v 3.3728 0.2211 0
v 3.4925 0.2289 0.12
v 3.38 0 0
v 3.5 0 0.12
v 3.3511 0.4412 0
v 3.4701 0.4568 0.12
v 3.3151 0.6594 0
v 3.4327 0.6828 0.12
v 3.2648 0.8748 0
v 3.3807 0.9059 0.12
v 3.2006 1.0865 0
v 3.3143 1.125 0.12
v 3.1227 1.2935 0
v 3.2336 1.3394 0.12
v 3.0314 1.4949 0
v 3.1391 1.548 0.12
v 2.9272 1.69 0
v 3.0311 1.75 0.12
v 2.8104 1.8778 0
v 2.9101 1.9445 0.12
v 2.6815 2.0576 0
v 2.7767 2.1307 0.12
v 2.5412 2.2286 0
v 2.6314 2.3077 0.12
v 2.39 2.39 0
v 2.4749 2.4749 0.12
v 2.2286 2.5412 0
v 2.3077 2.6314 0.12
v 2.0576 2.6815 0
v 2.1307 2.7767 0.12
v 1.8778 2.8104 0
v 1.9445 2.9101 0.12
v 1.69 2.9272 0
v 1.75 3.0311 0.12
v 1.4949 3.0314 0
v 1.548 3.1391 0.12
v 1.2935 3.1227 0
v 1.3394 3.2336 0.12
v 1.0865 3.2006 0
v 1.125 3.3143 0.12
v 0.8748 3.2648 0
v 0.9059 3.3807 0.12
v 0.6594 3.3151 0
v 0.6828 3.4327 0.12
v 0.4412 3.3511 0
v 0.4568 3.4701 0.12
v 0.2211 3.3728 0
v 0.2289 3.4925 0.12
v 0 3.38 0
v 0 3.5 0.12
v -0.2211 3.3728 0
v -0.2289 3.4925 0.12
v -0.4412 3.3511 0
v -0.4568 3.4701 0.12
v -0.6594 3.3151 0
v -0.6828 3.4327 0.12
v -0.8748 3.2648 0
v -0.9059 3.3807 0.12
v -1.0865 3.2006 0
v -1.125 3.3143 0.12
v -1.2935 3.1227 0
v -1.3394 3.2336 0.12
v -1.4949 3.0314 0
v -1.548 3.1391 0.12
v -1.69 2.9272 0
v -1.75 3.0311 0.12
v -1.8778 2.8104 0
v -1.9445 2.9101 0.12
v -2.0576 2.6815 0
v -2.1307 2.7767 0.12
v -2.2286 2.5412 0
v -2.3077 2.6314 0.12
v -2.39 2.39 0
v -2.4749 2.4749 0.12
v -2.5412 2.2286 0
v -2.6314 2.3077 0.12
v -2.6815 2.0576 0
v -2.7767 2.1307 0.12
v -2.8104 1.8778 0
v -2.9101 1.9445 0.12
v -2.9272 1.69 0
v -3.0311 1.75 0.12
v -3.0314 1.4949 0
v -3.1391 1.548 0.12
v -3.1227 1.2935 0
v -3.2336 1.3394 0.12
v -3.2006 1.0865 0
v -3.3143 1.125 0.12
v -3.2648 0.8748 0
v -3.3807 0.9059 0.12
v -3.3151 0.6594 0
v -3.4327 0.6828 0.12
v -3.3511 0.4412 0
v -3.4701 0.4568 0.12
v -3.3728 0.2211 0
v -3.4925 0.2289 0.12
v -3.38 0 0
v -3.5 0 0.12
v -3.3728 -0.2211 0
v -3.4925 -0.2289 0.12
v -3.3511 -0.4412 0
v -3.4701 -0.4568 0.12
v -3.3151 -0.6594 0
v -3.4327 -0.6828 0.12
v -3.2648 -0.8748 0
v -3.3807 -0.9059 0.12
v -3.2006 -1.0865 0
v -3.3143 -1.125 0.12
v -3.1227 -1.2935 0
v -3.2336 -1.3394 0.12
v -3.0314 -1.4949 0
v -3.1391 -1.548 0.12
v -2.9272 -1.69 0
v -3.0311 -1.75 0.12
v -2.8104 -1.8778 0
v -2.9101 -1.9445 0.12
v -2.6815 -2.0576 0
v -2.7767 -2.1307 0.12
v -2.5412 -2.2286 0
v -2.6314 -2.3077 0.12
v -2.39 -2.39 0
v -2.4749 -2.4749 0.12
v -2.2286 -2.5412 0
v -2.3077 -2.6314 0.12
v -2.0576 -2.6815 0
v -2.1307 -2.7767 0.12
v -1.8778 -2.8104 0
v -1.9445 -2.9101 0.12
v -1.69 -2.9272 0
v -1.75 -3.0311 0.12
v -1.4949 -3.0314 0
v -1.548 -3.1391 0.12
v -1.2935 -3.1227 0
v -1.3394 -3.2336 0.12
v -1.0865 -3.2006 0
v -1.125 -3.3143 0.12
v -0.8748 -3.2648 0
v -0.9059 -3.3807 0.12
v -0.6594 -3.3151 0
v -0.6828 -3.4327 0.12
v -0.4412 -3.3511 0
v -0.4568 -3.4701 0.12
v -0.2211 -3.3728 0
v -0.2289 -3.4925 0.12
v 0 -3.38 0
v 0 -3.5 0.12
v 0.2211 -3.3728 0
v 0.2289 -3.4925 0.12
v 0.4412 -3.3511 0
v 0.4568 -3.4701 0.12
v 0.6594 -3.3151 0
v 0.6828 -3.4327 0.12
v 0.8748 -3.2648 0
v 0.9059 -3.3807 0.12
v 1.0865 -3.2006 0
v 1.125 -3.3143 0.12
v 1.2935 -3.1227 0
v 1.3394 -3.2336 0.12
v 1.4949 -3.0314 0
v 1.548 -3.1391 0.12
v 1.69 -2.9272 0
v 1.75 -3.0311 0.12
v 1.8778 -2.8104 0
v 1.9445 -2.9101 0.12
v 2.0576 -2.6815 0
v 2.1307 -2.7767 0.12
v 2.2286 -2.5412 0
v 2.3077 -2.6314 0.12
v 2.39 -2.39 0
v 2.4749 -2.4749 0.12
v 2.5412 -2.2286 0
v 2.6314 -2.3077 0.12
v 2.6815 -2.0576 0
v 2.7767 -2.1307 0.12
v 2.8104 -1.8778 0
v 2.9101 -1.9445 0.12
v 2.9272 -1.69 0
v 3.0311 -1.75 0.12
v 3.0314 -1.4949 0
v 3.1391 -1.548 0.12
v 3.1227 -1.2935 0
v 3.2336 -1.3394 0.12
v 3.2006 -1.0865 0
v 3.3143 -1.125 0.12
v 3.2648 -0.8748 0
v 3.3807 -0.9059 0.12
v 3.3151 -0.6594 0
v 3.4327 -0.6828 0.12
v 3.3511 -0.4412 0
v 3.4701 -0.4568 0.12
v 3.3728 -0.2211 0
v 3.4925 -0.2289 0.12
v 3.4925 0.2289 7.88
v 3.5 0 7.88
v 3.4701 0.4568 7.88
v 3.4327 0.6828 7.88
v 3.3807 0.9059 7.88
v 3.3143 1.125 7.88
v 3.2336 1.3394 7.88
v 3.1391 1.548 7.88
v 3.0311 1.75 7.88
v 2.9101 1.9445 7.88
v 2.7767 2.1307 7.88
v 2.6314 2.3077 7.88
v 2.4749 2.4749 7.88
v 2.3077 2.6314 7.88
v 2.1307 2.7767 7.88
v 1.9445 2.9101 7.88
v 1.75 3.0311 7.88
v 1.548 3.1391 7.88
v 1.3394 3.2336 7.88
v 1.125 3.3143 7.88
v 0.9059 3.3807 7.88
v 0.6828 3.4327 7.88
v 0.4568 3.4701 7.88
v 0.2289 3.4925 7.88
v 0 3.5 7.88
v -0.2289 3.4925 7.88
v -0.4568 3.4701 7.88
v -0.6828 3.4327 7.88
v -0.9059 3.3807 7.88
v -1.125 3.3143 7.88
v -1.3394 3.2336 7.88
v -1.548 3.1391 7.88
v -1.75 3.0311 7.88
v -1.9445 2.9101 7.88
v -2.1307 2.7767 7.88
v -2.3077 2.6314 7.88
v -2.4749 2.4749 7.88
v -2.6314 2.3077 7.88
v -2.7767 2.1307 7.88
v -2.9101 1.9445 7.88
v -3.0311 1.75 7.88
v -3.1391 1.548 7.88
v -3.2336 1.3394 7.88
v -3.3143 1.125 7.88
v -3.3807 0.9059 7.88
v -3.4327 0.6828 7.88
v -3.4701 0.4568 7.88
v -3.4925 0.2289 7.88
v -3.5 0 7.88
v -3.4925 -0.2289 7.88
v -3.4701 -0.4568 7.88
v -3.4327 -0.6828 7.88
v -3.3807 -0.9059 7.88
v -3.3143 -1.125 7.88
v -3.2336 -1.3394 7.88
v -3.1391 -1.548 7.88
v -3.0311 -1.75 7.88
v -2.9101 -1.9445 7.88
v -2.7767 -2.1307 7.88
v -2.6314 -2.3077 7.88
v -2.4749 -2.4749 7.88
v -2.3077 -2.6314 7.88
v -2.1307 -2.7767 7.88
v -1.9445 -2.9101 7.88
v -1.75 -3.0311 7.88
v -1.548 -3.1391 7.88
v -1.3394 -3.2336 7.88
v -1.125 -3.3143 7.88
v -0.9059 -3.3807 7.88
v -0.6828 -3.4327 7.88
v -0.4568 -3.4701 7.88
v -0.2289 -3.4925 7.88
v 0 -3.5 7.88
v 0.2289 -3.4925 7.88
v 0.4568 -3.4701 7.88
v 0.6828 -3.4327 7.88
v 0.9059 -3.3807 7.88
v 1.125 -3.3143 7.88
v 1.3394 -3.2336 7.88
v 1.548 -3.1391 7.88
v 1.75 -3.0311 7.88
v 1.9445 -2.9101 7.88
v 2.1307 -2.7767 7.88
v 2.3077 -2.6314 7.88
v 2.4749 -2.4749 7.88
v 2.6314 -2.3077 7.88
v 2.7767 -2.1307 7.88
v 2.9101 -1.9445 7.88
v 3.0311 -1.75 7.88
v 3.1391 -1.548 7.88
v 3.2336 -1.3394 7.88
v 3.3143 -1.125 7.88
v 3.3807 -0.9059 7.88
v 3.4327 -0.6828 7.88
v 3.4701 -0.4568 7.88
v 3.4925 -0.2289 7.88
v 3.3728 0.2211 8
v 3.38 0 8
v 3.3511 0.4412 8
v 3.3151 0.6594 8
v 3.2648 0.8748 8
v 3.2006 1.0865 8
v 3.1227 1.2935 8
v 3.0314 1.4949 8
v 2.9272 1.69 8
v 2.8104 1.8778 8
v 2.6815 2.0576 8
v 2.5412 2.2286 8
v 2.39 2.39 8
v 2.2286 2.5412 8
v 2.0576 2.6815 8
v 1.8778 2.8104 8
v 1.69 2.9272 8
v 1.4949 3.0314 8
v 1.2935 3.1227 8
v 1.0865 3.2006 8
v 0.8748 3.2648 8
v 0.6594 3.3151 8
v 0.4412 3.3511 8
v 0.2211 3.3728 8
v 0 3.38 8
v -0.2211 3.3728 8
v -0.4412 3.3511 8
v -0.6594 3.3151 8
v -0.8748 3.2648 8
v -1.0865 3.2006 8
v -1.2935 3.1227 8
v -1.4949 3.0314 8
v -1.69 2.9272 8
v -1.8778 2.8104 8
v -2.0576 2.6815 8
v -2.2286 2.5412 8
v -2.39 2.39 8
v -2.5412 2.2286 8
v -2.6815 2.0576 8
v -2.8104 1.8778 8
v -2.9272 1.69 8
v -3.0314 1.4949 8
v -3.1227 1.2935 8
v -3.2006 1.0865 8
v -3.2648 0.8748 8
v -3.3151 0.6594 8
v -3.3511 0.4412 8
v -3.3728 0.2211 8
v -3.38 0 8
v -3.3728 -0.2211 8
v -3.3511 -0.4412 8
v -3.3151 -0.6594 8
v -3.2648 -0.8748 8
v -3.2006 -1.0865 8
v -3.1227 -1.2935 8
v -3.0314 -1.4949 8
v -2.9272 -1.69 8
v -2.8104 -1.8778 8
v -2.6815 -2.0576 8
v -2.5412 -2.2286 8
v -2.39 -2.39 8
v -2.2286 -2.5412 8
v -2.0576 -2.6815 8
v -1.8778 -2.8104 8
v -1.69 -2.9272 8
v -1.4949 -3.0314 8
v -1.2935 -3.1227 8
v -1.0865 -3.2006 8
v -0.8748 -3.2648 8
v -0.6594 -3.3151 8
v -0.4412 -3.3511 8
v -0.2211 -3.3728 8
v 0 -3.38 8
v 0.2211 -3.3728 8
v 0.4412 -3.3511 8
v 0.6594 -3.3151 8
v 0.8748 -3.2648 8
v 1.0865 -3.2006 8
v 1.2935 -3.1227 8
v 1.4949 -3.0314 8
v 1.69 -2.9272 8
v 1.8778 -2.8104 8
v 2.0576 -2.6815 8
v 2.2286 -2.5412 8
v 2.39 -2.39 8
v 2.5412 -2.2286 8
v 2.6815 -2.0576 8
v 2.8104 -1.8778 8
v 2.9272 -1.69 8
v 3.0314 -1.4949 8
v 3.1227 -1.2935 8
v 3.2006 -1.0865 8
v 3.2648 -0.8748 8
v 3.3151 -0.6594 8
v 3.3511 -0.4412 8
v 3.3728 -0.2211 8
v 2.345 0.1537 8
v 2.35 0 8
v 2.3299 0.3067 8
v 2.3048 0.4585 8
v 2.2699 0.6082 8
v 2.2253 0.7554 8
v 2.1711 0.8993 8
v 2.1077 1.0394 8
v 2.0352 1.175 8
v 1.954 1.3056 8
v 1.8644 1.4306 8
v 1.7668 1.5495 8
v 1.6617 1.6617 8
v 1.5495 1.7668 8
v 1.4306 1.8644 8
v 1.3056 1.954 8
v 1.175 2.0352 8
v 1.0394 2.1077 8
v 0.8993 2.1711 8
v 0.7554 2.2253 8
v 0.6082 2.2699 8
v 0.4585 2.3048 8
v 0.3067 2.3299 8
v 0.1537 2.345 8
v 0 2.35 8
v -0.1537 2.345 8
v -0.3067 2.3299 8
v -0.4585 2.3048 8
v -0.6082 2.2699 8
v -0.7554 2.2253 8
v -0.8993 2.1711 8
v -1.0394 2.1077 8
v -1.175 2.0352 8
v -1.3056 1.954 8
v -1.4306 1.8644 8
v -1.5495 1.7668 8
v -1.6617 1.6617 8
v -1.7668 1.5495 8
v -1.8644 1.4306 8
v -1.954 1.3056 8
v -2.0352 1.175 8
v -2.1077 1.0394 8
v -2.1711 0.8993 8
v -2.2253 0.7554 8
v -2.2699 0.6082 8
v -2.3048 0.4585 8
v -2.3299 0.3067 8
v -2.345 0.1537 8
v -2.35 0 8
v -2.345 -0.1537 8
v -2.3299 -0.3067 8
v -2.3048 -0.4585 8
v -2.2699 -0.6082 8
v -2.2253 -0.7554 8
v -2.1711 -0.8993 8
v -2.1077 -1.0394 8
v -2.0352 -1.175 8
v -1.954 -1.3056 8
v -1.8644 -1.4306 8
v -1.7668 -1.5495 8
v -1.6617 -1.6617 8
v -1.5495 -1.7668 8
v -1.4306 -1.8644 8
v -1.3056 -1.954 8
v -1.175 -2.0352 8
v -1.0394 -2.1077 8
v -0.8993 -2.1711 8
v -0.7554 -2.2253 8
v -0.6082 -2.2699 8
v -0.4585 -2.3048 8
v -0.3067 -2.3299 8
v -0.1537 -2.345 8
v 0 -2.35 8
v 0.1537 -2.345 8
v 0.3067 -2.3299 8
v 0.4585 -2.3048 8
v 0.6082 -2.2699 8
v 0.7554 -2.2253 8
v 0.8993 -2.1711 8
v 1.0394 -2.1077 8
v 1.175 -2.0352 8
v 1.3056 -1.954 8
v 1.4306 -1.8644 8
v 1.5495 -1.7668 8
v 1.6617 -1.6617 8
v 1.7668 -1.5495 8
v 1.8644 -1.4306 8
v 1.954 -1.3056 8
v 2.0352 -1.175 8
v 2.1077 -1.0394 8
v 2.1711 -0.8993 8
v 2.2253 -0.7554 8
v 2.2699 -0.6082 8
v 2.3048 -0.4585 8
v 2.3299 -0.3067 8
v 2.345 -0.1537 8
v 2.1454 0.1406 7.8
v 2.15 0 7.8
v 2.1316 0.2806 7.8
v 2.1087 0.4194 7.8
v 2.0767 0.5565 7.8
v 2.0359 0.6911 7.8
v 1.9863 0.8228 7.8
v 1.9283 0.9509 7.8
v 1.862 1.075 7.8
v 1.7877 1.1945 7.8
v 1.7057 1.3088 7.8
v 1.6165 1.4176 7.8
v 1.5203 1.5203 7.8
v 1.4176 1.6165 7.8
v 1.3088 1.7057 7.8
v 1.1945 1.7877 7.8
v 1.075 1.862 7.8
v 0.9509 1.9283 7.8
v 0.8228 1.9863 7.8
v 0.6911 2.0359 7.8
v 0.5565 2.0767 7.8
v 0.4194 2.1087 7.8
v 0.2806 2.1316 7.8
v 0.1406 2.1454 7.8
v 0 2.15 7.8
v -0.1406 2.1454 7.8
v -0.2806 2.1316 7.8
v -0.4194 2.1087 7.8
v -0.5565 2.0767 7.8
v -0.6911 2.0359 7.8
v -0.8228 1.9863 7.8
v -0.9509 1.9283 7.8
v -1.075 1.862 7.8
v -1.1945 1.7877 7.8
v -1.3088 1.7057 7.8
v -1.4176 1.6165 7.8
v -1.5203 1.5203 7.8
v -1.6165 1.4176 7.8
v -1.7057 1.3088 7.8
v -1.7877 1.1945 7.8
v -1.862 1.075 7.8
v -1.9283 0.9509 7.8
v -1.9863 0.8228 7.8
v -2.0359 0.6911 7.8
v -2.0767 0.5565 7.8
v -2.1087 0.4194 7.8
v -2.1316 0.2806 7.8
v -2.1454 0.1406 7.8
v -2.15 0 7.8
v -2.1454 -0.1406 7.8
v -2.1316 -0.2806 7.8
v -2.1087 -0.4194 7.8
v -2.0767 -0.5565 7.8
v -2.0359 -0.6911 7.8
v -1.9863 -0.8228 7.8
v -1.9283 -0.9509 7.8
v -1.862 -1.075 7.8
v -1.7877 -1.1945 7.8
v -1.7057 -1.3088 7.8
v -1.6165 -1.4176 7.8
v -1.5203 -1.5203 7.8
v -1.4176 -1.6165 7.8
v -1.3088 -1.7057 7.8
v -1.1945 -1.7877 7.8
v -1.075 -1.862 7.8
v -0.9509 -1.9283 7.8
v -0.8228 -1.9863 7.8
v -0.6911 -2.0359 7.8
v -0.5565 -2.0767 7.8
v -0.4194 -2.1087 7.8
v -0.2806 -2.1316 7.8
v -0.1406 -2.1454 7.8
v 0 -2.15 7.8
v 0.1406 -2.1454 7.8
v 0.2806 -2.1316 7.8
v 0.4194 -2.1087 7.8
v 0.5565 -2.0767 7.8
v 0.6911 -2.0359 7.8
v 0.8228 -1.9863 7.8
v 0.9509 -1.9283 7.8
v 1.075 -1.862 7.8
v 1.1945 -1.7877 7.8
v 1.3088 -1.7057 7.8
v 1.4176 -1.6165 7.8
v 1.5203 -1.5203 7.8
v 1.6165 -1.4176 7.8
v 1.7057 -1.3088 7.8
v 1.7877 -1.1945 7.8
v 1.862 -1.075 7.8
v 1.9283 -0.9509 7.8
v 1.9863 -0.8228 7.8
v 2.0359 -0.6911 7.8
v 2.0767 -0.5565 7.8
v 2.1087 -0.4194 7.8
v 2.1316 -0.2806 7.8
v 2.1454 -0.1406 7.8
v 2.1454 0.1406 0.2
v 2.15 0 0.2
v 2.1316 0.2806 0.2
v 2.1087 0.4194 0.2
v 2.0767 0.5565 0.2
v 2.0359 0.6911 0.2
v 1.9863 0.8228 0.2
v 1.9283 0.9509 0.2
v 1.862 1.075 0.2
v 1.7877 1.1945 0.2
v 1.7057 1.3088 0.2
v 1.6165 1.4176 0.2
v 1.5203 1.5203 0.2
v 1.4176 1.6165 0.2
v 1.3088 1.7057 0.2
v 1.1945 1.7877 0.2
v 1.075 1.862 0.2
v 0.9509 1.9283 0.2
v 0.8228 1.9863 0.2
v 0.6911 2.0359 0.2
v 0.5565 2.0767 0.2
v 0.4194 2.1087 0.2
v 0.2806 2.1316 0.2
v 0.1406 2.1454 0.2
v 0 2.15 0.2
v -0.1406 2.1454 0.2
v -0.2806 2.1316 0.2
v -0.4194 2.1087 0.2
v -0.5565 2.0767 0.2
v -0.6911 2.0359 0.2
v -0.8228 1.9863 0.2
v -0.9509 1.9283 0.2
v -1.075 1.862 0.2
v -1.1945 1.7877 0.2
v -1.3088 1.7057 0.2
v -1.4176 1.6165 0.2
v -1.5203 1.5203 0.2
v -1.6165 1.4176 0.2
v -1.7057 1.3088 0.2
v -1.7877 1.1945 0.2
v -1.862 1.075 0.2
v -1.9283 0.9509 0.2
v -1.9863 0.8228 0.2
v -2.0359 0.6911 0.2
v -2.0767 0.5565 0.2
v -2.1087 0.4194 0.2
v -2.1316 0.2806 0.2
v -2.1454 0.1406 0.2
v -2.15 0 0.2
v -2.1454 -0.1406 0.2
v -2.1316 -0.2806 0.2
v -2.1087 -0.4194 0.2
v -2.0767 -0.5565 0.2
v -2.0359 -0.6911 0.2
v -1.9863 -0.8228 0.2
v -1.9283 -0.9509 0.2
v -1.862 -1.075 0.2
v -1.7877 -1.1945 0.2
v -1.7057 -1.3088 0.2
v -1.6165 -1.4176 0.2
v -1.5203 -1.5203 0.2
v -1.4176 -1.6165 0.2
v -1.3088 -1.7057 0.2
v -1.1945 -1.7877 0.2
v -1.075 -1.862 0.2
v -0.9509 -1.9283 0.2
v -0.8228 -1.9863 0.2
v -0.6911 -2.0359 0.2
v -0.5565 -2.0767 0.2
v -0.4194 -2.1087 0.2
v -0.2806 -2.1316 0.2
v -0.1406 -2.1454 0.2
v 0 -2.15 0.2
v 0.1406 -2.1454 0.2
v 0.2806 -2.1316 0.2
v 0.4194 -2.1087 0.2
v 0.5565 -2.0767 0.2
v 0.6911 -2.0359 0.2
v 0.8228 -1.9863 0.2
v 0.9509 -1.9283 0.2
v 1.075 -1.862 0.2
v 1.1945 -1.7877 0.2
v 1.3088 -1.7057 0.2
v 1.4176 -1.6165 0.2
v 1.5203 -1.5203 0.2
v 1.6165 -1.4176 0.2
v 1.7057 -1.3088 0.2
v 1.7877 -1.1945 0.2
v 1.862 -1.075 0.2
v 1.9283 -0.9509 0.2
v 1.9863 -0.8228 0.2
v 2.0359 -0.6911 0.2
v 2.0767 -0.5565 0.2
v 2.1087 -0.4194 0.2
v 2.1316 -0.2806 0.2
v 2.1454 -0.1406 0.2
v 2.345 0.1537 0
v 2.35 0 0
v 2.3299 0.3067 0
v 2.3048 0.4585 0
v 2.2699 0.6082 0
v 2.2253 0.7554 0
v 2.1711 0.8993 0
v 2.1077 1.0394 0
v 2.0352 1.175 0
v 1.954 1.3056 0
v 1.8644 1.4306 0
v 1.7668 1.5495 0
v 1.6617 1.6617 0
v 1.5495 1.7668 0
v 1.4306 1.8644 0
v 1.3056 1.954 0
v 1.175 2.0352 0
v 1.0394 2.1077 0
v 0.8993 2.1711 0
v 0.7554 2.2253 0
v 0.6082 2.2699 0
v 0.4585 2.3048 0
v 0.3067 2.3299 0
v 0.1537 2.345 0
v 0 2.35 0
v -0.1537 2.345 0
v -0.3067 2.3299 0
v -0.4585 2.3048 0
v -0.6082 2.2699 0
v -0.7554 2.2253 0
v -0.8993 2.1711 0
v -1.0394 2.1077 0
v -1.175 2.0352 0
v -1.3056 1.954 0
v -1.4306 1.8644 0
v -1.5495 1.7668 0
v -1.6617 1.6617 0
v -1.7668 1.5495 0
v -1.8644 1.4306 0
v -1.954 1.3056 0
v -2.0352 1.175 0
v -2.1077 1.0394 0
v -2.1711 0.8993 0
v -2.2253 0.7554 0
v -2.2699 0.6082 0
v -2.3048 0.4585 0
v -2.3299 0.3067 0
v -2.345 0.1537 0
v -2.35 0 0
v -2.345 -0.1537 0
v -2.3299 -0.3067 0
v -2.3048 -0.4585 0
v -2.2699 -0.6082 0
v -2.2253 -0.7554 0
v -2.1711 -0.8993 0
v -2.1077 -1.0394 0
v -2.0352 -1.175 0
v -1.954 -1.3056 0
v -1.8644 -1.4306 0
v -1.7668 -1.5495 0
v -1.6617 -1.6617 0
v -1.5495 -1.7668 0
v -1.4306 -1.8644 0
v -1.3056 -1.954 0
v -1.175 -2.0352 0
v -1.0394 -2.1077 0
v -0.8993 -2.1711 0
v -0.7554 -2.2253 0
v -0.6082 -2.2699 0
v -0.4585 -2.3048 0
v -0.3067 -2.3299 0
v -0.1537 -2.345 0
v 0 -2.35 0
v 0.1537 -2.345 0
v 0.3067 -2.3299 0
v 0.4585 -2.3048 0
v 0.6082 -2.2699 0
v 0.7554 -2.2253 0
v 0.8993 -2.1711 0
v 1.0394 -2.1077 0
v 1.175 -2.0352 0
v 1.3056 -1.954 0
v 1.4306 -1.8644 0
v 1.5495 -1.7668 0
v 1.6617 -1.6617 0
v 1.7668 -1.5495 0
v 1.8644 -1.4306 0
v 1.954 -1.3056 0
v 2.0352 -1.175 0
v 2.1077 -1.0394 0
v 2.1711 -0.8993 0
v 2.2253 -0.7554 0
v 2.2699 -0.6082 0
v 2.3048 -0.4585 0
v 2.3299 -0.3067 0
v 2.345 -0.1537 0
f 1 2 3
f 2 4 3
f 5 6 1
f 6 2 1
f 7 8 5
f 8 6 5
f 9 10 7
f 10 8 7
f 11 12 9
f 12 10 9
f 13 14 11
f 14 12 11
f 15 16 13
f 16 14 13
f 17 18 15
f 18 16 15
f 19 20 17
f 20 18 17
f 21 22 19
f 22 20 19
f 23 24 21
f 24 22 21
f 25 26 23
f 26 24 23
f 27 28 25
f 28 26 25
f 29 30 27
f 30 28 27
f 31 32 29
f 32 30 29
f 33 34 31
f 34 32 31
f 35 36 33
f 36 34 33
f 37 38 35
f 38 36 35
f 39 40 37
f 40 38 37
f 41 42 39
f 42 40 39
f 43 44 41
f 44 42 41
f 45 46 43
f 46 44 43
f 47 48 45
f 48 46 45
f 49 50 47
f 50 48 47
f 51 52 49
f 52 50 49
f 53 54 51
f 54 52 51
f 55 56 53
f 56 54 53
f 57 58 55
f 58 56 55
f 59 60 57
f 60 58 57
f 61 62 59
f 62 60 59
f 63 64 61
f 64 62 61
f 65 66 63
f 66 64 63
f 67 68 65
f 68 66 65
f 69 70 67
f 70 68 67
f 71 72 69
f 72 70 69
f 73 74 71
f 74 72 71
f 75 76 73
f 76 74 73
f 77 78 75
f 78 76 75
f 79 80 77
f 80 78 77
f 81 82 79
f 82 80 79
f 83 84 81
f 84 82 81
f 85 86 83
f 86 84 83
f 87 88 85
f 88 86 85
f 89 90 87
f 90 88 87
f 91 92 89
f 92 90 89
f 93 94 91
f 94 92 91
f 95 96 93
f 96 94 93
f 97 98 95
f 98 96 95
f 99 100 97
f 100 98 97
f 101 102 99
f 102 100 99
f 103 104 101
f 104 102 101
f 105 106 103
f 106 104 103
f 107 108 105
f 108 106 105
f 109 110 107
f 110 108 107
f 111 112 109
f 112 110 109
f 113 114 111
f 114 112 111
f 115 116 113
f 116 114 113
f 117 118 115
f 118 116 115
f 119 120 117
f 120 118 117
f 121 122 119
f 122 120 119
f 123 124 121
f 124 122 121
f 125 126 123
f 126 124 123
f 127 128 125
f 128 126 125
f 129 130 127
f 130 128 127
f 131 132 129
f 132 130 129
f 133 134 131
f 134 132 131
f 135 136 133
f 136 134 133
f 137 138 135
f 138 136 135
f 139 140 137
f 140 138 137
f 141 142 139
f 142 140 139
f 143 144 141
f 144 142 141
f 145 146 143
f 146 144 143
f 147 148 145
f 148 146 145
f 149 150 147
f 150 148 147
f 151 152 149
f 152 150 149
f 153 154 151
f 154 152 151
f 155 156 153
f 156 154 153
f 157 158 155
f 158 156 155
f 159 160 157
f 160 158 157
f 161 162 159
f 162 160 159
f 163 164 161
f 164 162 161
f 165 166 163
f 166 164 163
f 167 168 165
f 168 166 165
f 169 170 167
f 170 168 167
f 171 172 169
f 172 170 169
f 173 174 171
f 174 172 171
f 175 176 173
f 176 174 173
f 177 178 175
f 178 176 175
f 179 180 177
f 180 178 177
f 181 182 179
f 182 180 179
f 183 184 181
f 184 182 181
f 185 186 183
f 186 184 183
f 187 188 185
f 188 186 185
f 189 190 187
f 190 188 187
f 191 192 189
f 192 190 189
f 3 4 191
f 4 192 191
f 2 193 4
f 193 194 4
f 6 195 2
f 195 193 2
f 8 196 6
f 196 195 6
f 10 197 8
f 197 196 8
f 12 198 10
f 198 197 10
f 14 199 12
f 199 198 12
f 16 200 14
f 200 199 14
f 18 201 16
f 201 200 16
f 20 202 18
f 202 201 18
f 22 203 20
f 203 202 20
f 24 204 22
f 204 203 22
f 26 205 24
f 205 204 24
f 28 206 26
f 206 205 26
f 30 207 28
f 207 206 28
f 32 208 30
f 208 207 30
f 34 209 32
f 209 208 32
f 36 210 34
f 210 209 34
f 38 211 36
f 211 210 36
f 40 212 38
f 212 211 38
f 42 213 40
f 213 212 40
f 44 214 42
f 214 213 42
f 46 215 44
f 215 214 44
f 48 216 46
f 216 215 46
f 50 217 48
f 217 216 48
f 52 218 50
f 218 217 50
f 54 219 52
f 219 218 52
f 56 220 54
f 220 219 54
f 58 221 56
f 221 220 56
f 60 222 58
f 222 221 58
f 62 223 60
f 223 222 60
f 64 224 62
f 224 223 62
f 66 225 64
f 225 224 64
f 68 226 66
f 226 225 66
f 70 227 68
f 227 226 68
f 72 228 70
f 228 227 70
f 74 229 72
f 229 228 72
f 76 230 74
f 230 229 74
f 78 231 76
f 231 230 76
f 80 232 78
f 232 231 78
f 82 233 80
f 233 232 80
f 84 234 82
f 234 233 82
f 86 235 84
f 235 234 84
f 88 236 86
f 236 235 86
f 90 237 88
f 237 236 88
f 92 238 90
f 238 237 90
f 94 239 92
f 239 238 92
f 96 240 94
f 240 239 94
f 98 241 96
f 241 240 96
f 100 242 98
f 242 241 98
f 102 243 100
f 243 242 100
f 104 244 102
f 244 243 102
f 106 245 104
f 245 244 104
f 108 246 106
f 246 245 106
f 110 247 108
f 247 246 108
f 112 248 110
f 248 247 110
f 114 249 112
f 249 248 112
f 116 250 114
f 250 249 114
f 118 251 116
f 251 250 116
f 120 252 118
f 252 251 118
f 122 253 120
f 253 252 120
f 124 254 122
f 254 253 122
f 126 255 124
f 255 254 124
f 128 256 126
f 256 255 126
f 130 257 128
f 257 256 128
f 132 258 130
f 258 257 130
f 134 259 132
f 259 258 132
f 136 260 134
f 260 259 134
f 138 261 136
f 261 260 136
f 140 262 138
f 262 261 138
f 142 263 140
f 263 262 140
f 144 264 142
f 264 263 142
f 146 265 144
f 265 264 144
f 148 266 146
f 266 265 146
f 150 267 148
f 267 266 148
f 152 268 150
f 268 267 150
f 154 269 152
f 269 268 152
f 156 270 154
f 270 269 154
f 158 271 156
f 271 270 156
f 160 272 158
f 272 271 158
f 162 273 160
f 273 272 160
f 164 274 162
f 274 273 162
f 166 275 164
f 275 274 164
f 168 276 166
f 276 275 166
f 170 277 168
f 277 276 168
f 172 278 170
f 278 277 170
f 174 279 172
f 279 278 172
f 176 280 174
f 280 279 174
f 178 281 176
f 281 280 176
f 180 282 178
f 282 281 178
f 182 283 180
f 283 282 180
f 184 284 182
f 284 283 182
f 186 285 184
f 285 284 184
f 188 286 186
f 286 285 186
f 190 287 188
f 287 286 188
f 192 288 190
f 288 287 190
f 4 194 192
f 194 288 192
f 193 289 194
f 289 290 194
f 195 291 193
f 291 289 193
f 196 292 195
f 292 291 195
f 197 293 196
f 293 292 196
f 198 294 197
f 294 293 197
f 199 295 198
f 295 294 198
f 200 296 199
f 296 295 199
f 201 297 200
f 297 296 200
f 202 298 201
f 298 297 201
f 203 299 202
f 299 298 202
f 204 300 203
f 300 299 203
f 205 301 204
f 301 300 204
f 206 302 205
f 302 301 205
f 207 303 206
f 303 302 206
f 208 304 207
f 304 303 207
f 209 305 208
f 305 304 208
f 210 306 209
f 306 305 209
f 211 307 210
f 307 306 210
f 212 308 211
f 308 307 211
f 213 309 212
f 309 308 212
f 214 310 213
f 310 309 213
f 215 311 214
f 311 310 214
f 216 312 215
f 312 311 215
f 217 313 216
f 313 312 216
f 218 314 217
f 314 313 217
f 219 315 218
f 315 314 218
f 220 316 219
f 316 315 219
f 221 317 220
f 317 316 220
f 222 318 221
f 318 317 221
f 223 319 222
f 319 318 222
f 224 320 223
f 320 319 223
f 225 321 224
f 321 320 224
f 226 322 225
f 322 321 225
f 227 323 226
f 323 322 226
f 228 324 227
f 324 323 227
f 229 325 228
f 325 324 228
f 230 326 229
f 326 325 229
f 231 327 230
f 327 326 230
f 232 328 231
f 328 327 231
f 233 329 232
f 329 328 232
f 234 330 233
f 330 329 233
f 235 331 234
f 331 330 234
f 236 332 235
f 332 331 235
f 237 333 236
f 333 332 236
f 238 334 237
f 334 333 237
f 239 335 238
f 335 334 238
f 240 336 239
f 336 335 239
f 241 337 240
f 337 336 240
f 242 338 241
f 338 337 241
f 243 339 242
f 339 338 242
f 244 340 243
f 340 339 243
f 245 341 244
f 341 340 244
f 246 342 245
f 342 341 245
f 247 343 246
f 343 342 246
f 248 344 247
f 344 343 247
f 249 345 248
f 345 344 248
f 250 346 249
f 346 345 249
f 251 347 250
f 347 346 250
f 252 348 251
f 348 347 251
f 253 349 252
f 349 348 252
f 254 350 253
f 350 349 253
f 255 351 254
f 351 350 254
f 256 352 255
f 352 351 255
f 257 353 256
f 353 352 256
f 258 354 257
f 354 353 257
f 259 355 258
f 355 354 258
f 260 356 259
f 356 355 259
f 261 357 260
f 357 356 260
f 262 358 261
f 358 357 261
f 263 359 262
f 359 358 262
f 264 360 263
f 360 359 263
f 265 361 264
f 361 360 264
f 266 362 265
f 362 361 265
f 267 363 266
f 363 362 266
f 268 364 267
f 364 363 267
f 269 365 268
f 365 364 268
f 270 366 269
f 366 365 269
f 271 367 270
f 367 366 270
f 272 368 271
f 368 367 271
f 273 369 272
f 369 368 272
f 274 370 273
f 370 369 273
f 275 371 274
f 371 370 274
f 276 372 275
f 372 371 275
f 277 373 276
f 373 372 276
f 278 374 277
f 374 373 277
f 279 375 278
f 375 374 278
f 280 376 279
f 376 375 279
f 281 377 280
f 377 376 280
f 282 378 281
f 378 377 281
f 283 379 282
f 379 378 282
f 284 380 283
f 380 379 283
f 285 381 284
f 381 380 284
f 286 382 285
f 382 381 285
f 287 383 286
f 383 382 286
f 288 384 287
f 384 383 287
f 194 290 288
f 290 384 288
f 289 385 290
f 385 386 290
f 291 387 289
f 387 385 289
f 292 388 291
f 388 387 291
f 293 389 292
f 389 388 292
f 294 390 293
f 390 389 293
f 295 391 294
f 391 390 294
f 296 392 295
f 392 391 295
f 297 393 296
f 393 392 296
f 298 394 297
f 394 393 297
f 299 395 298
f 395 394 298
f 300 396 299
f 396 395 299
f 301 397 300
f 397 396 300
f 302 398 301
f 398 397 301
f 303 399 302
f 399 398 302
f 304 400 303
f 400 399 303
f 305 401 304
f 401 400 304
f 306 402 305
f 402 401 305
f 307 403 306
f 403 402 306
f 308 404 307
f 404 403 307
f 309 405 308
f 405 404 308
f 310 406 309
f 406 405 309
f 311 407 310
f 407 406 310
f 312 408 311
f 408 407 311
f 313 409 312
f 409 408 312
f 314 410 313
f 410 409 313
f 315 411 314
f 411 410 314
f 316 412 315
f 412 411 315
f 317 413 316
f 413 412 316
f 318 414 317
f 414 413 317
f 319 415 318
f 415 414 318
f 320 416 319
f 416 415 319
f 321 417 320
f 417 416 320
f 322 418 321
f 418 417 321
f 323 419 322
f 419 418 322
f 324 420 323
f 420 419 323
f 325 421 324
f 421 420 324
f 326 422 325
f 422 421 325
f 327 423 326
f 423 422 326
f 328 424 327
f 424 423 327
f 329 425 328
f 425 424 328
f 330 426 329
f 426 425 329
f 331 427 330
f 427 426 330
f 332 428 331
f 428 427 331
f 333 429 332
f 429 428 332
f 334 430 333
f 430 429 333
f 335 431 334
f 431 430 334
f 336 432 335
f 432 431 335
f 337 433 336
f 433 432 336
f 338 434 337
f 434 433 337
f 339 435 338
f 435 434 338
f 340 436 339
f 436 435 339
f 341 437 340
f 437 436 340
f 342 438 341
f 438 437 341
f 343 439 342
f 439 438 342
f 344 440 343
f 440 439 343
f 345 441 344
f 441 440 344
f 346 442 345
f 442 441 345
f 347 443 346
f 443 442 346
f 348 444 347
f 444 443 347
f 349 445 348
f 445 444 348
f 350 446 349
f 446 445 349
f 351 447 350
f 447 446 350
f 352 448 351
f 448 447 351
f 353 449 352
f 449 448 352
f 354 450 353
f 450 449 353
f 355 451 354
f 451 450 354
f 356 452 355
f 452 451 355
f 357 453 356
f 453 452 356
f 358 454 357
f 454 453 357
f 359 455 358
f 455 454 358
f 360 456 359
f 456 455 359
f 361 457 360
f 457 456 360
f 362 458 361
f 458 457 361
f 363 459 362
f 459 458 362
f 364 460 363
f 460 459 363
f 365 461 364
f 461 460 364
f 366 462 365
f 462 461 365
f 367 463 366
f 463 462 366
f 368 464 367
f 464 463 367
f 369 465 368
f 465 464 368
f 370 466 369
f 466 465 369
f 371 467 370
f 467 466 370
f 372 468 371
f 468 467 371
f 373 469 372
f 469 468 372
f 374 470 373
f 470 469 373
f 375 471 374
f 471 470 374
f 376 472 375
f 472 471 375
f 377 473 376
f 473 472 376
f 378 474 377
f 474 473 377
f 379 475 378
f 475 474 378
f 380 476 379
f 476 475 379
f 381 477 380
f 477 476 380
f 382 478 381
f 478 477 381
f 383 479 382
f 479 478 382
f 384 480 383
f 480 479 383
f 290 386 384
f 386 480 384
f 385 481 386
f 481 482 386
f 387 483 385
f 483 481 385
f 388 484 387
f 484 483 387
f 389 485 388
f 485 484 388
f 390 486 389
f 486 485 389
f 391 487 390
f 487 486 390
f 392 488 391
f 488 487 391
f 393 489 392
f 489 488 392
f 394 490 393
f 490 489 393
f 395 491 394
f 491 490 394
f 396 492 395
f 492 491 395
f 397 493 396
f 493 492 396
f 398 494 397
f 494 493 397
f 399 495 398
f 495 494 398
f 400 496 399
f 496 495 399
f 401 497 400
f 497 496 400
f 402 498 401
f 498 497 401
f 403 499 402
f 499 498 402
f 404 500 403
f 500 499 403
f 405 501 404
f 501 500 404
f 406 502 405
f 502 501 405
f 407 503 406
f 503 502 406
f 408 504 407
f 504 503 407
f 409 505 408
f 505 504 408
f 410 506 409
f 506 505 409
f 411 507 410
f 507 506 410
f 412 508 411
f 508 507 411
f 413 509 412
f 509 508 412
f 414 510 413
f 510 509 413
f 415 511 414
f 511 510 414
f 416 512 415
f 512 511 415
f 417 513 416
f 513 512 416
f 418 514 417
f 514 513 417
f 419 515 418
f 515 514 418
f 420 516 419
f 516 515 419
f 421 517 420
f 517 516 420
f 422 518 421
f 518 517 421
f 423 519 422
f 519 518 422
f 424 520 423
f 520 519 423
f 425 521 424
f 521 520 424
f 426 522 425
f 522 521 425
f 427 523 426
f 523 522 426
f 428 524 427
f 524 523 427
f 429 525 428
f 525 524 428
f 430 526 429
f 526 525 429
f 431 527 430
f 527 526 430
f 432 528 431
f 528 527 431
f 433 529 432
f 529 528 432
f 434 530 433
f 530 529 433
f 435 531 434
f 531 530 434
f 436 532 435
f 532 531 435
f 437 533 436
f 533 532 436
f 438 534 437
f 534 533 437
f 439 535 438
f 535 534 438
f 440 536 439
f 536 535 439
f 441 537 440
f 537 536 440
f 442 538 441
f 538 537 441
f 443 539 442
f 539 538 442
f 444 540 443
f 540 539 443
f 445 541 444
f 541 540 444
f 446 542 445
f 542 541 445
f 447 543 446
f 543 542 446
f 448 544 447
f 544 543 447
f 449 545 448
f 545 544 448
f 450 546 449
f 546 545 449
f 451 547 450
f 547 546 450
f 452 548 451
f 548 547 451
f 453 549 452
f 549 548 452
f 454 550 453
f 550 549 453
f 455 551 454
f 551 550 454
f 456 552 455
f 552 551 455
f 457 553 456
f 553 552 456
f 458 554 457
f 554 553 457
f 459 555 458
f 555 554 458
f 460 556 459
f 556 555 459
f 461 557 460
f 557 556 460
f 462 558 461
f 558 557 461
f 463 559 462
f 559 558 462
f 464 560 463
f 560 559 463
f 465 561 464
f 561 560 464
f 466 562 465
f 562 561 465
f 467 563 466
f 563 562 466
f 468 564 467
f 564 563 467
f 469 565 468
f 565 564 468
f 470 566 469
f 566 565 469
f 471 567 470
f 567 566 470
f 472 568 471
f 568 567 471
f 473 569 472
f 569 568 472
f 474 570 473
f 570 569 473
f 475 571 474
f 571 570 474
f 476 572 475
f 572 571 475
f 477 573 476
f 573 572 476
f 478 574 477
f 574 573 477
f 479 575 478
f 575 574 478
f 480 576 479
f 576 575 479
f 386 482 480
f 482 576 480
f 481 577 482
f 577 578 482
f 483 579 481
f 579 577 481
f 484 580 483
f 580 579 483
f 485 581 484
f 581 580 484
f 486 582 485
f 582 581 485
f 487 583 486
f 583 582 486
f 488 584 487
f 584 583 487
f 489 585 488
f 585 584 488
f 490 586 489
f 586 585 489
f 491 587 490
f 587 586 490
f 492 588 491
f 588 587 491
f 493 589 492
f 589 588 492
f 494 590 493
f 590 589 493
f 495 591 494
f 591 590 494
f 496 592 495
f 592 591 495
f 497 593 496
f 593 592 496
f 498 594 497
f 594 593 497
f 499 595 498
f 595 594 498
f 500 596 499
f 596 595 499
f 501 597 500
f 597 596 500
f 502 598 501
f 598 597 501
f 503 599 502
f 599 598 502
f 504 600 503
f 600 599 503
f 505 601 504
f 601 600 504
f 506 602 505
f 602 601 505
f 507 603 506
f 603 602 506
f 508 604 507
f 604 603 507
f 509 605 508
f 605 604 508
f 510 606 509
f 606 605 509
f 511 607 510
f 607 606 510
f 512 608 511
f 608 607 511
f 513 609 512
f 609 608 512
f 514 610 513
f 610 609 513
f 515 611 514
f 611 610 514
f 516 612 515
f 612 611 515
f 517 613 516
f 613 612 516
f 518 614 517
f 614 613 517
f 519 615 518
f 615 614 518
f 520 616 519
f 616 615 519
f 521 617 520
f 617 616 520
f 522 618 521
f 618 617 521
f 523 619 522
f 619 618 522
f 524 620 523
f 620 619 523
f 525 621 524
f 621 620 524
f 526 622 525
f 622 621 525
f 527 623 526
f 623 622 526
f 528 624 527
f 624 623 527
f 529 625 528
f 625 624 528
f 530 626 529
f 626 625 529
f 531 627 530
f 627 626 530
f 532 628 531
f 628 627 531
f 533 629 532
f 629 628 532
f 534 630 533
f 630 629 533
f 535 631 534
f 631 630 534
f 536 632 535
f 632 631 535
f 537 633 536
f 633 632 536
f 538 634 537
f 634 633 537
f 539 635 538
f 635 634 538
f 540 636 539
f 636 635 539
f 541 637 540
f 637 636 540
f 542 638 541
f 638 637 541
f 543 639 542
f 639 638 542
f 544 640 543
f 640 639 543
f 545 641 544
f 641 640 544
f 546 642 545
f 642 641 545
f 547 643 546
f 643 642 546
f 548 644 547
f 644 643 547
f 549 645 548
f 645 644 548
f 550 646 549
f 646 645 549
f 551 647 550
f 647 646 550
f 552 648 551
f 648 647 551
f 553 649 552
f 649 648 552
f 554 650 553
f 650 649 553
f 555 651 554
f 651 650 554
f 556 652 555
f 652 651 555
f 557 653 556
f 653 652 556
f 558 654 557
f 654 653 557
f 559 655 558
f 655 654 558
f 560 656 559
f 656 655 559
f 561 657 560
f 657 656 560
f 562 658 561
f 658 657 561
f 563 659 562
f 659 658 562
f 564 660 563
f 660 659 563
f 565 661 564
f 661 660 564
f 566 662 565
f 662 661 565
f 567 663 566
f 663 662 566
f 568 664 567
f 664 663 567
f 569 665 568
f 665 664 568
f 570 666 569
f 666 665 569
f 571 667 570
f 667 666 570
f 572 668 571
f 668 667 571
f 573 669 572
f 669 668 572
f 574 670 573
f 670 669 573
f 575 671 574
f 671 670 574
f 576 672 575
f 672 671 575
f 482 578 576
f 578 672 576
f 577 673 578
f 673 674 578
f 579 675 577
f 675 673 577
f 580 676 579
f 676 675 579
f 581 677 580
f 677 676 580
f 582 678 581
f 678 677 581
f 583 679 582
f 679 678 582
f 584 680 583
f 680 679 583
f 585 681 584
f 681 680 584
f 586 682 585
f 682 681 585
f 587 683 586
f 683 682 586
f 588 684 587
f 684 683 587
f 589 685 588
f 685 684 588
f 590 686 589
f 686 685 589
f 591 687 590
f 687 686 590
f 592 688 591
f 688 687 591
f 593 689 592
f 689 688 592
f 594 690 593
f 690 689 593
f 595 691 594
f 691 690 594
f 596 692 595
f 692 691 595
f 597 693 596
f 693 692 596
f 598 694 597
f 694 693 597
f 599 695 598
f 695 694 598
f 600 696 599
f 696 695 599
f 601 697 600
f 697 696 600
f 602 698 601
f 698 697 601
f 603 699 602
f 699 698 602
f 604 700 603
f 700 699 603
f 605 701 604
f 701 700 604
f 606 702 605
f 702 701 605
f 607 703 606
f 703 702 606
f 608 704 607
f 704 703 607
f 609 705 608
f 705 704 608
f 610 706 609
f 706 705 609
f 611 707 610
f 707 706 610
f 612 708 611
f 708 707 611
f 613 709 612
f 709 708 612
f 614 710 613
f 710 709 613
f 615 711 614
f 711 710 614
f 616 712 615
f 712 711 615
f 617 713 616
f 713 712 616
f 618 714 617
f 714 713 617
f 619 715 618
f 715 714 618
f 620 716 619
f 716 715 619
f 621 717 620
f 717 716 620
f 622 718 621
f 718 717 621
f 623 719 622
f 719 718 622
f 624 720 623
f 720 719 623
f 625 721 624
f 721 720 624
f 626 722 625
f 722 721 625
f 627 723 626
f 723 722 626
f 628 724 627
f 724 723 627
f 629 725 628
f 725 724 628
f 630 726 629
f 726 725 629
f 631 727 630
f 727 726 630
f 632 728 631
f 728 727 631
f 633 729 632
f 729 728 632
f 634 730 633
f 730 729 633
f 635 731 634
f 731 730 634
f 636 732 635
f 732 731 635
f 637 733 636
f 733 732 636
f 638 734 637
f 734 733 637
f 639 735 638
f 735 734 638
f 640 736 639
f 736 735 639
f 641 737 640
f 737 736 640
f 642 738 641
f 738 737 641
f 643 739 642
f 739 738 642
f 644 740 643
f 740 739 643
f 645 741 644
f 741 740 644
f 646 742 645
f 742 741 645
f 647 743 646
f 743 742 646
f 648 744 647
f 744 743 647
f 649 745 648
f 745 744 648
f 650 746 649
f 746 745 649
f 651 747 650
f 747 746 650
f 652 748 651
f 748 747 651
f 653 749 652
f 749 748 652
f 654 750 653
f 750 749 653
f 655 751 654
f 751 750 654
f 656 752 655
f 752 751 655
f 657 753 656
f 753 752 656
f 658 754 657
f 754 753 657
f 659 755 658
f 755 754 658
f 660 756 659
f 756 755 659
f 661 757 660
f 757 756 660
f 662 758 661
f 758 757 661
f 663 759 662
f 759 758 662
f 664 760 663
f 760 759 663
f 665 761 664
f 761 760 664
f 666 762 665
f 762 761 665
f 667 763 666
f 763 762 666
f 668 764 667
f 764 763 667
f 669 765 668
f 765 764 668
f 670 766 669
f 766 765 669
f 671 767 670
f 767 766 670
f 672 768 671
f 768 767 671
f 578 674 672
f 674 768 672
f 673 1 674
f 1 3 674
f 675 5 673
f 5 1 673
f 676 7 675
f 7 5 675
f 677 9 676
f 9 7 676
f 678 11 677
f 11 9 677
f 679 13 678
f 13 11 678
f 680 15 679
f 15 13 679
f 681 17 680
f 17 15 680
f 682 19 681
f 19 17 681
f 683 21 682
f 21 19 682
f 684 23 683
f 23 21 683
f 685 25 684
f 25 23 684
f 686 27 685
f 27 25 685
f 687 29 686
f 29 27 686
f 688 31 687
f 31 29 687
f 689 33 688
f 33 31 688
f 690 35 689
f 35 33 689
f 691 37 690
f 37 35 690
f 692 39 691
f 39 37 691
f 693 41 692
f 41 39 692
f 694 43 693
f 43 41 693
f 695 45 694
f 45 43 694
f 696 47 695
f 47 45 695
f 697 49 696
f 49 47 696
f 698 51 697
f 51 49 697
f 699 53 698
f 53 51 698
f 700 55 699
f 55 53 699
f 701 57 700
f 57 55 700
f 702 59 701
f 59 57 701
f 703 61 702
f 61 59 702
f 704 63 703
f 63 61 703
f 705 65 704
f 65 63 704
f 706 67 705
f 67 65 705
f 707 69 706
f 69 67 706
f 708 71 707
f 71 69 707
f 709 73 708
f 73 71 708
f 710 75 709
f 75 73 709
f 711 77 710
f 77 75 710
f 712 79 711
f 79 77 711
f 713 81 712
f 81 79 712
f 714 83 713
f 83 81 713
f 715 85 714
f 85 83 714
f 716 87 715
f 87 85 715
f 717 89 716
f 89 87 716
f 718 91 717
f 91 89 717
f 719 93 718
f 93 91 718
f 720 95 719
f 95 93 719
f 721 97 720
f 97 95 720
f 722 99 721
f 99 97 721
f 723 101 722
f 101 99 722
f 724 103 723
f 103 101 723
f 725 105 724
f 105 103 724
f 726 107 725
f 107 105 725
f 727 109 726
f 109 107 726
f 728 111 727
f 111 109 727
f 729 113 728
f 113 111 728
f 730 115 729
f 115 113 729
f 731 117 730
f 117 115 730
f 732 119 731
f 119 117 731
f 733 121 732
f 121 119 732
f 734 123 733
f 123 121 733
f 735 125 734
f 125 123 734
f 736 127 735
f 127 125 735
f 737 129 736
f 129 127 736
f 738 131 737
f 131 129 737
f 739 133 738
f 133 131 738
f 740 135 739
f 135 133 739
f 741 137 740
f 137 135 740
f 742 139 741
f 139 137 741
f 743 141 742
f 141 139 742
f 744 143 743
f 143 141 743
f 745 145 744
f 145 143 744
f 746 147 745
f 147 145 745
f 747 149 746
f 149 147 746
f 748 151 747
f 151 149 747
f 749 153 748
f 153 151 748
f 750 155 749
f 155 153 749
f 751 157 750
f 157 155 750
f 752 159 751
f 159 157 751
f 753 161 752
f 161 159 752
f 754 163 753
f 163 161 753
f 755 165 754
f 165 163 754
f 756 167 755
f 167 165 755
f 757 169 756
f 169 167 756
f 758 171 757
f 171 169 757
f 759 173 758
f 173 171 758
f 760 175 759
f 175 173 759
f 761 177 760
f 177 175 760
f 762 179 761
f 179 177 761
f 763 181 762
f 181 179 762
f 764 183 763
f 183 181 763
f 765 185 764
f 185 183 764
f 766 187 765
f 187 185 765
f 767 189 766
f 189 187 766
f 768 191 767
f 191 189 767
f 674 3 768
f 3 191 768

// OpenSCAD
// OOMP generic catalogue model; units: mm.
// Stud length is additional to body depth. Tapping depths are model assumptions.
variant = "full"; // [full, display]
family = "spacer";
connection_type = "plain";
depth_mm = 8;
stud_length_mm = 0;
tapped_depth_mm = 0;
bore_mm = 4.3;
outer_diameter_mm = 7;
across_flats_mm = 6;
thread_nominal_diameter_mm = 3;
thread_pitch_mm = 0.5;
edge_chamfer_mm = 0.12;
mouth_chamfer_mm = 0.2;
angular_segments = 96;
samples_per_pitch = 16;

// Boundary travels up the outside, then down any tapped/plain bore.
// Equal-height rings at shoulders form the annular shoulder faces.
n = angular_segments;
threaded = family == "standoff";
has_stud = connection_type == "stud_to_tapped" || connection_type == "stud_to_stud";
two_studs = connection_type == "stud_to_stud";
through = !threaded || connection_type == "tapped_to_tapped";
pitch = thread_pitch_mm;
diameter = threaded ? thread_nominal_diameter_mm : bore_mm;
minor = diameter - 5*sqrt(3)*pitch/8;
transition = mouth_chamfer_mm + (threaded ? 5*sqrt(3)*pitch/16 : 0);
tip_chamfer = mouth_chamfer_mm + 17*sqrt(3)*pitch/48;
function sorted(v) = len(v)<=1 ? v : let(p=v[0])
    concat(sorted([for(x=v) if(x<p-1e-8) x]), [p], sorted([for(x=v) if(x>p+1e-8) x]));
function reverse(v) = [for(i=[len(v)-1:-1:0]) v[i]];
function theta(i) = i*360/n;
function fract(x) = x-floor(x);
function phase_distance(i,z) = abs(fract(z/pitch-theta(i)/360+0.5)-0.5);
function thread_r(i,z) = minor/2 + min(5*sqrt(3)*pitch/16,
    max(0,(phase_distance(i,z)-0.125)*pitch*sqrt(3)));
function stud_r(i,z,tip) = min(diameter/2 - (variant=="full" ?
    min(17*sqrt(3)*pitch/48,max(0,(phase_distance(i,z)-0.0625)*pitch*sqrt(3))) : 0),
    diameter/2-tip_chamfer+abs(z-tip));
function body_r(i,z) = (threaded ? across_flats_mm/2/cos(theta(i)%60-30) : outer_diameter_mm/2)
    - max(0,edge_chamfer_mm-min(z,depth_mm-z));
function bore_r(i,z) = max(threaded ? (variant=="full" ? thread_r(i,z) : minor/2) : diameter/2,
    diameter/2+mouth_chamfer_mm-(through ? min(z,depth_mm-z) : depth_mm-z));
function stud_z(a,b,tip) = let(count=variant=="full" ? ceil(stud_length_mm/pitch*samples_per_pitch) : 1)
    sorted(concat([for(i=[0:count]) a+(b-a)*i/count], [tip==a ? tip+tip_chamfer : tip-tip_chamfer]));
body_z = sorted([0,edge_chamfer_mm,depth_mm-edge_chamfer_mm,depth_mm]);
low = through ? 0 : depth_mm-tapped_depth_mm;
count = threaded && variant=="full" ? ceil((depth_mm-low)/pitch*samples_per_pitch) : 1;
bore_z = two_studs ? [] : reverse(sorted(concat(
    [for(i=[0:count]) low+(depth_mm-low)*i/count],
    [depth_mm-mouth_chamfer_mm,depth_mm-transition],
    through ? [mouth_chamfer_mm,transition] : [])));
// Ring descriptors: [height, kind, tip]. Kind: 0 body, 1 stud, 2 bore.
rings = concat(
    has_stud ? [for(z=stud_z(-stud_length_mm,0,-stud_length_mm)) [z,1,-stud_length_mm]] : [],
    [for(z=body_z) [z,0,0]],
    two_studs ? [for(z=stud_z(depth_mm,depth_mm+stud_length_mm,depth_mm+stud_length_mm)) [z,1,depth_mm+stud_length_mm]] : [],
    [for(z=bore_z) [z,2,0]]);
function radius(i,ring) = ring[1]==0 ? body_r(i,ring[0]) :
    ring[1]==1 ? stud_r(i,ring[0],ring[2]) : bore_r(i,ring[0]);
points = concat([for(ring=rings) for(i=[0:n-1])
    [radius(i,ring)*cos(theta(i)),radius(i,ring)*sin(theta(i)),ring[0]]],
    through ? [] : [[0,0,rings[0][0]],[0,0,rings[len(rings)-1][0]]]);
center = len(rings)*n;
last = (len(rings)-1)*n;
// OpenSCAD winding is opposite to STL winding.
faces = concat(
    [for(j=[0:len(rings)-(through ? 1 : 2)]) for(i=[0:n-1]) each
        let(a=j*n+i,b=j*n+(i+1)%n,c=((j+1)%len(rings))*n+(i+1)%n,d=((j+1)%len(rings))*n+i)
        [[a,c,b],[a,d,c]]],
    through ? [] : [for(i=[0:n-1]) each let(k=(i+1)%n)
        [[center,i,k],[center+1,last+k,last+i]]]);
assert(family=="spacer" || family=="standoff");
assert(!threaded || connection_type=="tapped_to_tapped" || has_stud);
assert(depth_mm>0 && diameter>0 && pitch>0);
assert(variant=="full" || variant=="display");
assert(n>=24 && n%12==0 && samples_per_pitch>=8);
assert(mouth_chamfer_mm>0 && mouth_chamfer_mm<depth_mm/2);
assert(edge_chamfer_mm>=0 && edge_chamfer_mm<depth_mm/2);
assert(diameter+4*max(mouth_chamfer_mm,edge_chamfer_mm) < (threaded ? across_flats_mm : outer_diameter_mm));
assert(!has_stud || stud_length_mm>2*mouth_chamfer_mm);
assert(!through || !threaded || 2*transition<depth_mm);
assert(connection_type!="stud_to_tapped" || (tapped_depth_mm>transition && tapped_depth_mm<depth_mm));
color([0.86,0.85,0.81]) polyhedron(points=points,faces=faces,convexity=20);
